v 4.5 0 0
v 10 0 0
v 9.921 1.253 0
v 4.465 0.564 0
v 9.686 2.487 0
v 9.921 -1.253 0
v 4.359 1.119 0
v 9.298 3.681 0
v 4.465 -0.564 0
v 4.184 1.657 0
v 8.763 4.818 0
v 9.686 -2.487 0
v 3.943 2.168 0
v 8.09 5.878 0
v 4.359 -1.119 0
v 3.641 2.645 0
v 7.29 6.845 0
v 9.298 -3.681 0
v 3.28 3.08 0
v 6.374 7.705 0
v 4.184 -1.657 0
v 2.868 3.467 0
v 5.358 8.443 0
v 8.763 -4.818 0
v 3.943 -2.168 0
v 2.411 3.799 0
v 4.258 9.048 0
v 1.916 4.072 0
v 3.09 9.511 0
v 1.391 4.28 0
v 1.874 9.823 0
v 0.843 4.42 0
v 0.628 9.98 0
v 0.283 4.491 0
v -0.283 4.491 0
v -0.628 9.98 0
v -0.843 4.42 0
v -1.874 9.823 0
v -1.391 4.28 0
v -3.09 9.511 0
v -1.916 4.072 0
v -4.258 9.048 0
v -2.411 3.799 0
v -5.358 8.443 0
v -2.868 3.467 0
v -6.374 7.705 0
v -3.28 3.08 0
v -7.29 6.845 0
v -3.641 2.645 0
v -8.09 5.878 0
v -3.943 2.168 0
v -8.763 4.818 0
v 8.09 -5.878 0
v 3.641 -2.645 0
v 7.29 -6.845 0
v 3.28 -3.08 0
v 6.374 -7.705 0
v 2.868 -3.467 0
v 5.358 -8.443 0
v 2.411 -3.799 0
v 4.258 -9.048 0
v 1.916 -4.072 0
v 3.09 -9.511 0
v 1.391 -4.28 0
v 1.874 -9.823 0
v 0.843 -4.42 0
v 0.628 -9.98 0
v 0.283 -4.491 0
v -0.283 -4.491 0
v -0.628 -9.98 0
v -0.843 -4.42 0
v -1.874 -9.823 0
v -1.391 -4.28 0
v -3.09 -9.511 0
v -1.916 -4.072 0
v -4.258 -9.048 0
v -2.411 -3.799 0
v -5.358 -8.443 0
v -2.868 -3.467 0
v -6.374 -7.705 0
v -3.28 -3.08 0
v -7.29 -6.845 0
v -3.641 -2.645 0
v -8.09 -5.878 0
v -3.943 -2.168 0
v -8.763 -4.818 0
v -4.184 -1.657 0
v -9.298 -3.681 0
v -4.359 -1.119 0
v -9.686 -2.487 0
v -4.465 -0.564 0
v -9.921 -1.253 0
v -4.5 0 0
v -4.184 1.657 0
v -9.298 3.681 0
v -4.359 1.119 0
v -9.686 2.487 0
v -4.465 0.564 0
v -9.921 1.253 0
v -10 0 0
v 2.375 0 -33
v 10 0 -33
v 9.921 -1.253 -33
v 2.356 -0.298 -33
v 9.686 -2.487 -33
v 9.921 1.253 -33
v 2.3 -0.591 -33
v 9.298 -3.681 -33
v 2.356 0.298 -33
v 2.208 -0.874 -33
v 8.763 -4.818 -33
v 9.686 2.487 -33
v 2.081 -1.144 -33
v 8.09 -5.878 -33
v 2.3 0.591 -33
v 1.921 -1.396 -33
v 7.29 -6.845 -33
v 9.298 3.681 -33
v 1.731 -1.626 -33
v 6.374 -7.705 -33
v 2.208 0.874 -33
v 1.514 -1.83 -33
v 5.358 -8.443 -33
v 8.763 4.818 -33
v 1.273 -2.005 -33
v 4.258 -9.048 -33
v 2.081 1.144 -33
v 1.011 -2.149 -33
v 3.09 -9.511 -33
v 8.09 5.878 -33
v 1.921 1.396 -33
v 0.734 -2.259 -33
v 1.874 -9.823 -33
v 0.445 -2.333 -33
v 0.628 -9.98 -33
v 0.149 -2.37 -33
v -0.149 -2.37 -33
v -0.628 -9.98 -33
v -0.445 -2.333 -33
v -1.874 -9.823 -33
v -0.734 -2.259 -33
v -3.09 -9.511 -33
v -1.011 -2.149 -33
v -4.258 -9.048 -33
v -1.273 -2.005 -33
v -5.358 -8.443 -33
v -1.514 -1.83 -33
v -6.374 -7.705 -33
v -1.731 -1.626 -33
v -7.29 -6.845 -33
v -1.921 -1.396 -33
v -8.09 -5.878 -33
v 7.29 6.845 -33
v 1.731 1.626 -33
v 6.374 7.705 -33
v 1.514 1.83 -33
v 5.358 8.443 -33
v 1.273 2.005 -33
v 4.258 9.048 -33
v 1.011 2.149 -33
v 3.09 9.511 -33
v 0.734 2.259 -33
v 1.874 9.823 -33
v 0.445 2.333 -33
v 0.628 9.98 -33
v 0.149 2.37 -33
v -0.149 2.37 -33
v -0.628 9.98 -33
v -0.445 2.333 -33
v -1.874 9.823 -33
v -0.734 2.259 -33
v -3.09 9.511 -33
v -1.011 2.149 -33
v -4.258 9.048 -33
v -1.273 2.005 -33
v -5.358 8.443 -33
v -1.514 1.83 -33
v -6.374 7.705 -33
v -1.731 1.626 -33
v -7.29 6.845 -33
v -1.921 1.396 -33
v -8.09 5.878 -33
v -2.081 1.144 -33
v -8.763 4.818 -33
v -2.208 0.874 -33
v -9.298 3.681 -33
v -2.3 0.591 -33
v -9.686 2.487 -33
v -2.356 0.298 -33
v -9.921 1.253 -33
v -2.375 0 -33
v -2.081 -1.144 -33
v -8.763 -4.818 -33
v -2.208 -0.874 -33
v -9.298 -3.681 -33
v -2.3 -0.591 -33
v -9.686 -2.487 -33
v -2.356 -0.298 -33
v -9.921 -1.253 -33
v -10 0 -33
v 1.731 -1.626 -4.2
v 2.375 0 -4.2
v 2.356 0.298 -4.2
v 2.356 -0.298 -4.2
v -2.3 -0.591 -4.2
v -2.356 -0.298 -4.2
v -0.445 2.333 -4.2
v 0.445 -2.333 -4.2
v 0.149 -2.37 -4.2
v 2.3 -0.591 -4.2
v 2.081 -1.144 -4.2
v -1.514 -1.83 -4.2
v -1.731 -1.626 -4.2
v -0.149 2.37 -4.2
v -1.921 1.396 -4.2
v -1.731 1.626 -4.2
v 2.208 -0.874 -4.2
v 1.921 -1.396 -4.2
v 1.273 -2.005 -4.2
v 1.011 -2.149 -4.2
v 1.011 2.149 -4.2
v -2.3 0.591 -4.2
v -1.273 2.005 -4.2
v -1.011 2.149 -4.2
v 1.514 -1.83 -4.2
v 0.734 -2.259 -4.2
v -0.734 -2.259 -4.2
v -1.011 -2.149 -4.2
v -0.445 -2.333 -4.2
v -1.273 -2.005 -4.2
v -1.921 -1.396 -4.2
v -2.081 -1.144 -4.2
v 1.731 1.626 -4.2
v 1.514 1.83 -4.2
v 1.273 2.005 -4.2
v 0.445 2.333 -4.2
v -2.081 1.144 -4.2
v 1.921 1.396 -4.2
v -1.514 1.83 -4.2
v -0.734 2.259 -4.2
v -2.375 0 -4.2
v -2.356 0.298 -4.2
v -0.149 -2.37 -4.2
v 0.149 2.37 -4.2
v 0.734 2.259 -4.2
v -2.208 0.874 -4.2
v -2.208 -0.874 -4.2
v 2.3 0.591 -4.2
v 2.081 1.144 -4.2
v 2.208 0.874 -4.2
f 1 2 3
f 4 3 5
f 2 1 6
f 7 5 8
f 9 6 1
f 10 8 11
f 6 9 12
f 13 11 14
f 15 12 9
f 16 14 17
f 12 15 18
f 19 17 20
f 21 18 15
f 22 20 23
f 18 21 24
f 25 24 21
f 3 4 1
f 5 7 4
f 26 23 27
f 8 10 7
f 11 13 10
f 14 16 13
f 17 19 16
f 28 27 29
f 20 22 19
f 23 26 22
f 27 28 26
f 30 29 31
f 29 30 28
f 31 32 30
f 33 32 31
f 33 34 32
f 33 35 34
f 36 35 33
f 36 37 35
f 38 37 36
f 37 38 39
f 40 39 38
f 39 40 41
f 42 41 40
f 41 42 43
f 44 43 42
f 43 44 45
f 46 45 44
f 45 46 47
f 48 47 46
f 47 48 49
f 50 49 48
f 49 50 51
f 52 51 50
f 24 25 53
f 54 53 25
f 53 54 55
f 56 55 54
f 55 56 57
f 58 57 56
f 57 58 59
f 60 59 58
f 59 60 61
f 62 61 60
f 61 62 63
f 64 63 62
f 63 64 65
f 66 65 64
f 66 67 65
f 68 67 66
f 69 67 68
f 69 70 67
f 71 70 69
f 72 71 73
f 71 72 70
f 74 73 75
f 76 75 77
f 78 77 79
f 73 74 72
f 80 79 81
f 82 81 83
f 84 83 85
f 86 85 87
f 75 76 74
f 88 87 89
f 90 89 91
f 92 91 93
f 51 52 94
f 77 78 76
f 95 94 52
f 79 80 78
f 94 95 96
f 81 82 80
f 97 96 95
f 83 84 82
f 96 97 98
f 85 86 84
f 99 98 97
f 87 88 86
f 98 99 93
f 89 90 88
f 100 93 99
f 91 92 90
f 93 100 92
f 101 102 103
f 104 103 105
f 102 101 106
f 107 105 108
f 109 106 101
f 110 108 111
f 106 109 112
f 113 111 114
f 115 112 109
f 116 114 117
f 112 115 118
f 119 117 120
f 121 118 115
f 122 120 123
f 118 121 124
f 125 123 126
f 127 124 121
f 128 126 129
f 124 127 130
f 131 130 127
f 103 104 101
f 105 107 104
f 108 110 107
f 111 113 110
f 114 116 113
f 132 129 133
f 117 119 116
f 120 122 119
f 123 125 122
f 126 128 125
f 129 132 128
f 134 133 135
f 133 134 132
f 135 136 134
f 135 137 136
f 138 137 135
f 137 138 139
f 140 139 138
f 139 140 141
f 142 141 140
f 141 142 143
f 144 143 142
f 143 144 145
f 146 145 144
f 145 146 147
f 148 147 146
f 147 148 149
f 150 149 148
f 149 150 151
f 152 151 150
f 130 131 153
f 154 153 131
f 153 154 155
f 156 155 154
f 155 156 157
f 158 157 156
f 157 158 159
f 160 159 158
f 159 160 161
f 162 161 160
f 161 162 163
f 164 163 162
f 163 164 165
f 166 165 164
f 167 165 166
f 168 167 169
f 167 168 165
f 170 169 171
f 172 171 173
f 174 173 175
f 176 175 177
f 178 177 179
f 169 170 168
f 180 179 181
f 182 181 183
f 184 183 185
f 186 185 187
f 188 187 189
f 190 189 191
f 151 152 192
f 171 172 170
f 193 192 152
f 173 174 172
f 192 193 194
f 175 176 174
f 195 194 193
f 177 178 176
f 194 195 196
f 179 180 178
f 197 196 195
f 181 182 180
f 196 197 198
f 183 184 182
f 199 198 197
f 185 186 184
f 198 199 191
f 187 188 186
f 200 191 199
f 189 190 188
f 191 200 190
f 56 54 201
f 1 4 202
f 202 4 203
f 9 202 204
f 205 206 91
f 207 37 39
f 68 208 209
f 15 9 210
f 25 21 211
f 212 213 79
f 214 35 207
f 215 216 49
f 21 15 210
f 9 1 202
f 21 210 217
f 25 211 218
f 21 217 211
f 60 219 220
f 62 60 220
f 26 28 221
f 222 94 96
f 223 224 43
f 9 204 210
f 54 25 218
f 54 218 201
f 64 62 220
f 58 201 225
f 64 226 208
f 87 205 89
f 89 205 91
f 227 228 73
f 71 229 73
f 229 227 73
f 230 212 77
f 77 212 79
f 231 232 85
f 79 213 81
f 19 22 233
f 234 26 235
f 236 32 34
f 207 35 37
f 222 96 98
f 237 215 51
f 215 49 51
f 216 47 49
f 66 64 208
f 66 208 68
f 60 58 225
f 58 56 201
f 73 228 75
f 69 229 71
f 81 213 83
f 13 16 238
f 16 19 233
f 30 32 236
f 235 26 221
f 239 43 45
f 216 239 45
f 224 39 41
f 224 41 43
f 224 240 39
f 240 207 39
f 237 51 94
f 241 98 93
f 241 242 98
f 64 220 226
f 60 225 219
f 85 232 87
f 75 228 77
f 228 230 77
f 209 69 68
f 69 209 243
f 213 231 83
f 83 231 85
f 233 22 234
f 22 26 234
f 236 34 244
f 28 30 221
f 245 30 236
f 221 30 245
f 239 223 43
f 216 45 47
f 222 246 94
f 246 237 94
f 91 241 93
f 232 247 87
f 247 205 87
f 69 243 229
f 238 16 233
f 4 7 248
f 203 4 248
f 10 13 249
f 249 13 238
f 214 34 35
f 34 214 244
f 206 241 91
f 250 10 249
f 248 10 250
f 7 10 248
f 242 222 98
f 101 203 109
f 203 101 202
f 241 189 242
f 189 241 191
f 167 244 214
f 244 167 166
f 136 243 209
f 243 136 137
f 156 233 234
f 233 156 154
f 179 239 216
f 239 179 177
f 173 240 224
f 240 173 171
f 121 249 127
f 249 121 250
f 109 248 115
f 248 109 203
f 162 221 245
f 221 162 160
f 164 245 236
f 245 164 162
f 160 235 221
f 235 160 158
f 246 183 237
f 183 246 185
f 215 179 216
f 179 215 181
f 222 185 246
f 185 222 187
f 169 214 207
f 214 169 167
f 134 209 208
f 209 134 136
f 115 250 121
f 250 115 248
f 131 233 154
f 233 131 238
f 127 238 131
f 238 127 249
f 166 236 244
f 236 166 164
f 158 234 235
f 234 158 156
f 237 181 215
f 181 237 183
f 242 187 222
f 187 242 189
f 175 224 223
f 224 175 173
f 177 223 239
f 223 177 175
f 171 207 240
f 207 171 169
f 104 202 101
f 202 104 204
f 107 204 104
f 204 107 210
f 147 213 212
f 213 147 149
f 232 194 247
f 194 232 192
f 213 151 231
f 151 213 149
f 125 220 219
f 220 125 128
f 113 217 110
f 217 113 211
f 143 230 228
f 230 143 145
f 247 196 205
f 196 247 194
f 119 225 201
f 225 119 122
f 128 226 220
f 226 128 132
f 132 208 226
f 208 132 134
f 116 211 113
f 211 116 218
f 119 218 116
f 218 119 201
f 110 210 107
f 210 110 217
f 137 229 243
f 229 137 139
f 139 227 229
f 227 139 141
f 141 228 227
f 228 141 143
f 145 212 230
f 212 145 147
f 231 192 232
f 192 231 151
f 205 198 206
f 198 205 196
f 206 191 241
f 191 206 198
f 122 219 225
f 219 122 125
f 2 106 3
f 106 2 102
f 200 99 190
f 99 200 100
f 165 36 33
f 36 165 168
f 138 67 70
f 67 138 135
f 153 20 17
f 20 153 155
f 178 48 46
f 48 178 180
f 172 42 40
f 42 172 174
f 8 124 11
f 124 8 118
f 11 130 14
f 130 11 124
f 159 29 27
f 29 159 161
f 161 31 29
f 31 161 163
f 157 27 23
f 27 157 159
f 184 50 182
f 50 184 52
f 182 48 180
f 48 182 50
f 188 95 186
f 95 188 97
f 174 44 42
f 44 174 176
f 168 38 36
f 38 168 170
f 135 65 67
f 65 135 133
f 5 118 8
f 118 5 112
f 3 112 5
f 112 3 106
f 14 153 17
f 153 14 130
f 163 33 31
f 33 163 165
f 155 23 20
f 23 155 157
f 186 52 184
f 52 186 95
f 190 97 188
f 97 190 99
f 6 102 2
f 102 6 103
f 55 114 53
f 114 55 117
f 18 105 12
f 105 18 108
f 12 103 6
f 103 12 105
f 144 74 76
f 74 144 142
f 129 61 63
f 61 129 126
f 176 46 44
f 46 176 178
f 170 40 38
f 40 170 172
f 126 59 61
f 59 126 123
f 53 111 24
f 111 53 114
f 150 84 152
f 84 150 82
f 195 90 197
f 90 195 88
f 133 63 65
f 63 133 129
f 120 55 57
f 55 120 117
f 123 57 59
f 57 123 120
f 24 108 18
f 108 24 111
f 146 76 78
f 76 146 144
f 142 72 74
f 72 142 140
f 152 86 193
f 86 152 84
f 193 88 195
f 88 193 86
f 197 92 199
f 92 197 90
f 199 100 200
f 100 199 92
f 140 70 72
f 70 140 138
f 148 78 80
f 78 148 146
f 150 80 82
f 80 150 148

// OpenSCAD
$fn = 50;


difference() {
	union() {
		translate(v = [0, 0, -33.0000000000]) {
			cylinder(h = 33, r = 10.0000000000);
		}
		cylinder(h = 0, r = 20.0000000000);
	}
	union() {
		translate(v = [0, 0, 0]) {
			rotate(a = [0, 0, 0]) {
				difference() {
					union() {
						#translate(v = [0, 0, -33.0000000000]) {
							cylinder(h = 33, r = 2.2500000000);
						}
						#translate(v = [0, 0, -4.2000000000]) {
							cylinder(h = 4.2000000000, r1 = 2.3750000000, r2 = 4.5000000000);
						}
						#translate(v = [0, 0, -33.0000000000]) {
							cylinder(h = 33, r = 2.3750000000);
						}
						#translate(v = [0, 0, -33.0000000000]) {
							cylinder(h = 33, r = 2.2500000000);
						}
					}
					union();
				}
			}
		}
	}
}
